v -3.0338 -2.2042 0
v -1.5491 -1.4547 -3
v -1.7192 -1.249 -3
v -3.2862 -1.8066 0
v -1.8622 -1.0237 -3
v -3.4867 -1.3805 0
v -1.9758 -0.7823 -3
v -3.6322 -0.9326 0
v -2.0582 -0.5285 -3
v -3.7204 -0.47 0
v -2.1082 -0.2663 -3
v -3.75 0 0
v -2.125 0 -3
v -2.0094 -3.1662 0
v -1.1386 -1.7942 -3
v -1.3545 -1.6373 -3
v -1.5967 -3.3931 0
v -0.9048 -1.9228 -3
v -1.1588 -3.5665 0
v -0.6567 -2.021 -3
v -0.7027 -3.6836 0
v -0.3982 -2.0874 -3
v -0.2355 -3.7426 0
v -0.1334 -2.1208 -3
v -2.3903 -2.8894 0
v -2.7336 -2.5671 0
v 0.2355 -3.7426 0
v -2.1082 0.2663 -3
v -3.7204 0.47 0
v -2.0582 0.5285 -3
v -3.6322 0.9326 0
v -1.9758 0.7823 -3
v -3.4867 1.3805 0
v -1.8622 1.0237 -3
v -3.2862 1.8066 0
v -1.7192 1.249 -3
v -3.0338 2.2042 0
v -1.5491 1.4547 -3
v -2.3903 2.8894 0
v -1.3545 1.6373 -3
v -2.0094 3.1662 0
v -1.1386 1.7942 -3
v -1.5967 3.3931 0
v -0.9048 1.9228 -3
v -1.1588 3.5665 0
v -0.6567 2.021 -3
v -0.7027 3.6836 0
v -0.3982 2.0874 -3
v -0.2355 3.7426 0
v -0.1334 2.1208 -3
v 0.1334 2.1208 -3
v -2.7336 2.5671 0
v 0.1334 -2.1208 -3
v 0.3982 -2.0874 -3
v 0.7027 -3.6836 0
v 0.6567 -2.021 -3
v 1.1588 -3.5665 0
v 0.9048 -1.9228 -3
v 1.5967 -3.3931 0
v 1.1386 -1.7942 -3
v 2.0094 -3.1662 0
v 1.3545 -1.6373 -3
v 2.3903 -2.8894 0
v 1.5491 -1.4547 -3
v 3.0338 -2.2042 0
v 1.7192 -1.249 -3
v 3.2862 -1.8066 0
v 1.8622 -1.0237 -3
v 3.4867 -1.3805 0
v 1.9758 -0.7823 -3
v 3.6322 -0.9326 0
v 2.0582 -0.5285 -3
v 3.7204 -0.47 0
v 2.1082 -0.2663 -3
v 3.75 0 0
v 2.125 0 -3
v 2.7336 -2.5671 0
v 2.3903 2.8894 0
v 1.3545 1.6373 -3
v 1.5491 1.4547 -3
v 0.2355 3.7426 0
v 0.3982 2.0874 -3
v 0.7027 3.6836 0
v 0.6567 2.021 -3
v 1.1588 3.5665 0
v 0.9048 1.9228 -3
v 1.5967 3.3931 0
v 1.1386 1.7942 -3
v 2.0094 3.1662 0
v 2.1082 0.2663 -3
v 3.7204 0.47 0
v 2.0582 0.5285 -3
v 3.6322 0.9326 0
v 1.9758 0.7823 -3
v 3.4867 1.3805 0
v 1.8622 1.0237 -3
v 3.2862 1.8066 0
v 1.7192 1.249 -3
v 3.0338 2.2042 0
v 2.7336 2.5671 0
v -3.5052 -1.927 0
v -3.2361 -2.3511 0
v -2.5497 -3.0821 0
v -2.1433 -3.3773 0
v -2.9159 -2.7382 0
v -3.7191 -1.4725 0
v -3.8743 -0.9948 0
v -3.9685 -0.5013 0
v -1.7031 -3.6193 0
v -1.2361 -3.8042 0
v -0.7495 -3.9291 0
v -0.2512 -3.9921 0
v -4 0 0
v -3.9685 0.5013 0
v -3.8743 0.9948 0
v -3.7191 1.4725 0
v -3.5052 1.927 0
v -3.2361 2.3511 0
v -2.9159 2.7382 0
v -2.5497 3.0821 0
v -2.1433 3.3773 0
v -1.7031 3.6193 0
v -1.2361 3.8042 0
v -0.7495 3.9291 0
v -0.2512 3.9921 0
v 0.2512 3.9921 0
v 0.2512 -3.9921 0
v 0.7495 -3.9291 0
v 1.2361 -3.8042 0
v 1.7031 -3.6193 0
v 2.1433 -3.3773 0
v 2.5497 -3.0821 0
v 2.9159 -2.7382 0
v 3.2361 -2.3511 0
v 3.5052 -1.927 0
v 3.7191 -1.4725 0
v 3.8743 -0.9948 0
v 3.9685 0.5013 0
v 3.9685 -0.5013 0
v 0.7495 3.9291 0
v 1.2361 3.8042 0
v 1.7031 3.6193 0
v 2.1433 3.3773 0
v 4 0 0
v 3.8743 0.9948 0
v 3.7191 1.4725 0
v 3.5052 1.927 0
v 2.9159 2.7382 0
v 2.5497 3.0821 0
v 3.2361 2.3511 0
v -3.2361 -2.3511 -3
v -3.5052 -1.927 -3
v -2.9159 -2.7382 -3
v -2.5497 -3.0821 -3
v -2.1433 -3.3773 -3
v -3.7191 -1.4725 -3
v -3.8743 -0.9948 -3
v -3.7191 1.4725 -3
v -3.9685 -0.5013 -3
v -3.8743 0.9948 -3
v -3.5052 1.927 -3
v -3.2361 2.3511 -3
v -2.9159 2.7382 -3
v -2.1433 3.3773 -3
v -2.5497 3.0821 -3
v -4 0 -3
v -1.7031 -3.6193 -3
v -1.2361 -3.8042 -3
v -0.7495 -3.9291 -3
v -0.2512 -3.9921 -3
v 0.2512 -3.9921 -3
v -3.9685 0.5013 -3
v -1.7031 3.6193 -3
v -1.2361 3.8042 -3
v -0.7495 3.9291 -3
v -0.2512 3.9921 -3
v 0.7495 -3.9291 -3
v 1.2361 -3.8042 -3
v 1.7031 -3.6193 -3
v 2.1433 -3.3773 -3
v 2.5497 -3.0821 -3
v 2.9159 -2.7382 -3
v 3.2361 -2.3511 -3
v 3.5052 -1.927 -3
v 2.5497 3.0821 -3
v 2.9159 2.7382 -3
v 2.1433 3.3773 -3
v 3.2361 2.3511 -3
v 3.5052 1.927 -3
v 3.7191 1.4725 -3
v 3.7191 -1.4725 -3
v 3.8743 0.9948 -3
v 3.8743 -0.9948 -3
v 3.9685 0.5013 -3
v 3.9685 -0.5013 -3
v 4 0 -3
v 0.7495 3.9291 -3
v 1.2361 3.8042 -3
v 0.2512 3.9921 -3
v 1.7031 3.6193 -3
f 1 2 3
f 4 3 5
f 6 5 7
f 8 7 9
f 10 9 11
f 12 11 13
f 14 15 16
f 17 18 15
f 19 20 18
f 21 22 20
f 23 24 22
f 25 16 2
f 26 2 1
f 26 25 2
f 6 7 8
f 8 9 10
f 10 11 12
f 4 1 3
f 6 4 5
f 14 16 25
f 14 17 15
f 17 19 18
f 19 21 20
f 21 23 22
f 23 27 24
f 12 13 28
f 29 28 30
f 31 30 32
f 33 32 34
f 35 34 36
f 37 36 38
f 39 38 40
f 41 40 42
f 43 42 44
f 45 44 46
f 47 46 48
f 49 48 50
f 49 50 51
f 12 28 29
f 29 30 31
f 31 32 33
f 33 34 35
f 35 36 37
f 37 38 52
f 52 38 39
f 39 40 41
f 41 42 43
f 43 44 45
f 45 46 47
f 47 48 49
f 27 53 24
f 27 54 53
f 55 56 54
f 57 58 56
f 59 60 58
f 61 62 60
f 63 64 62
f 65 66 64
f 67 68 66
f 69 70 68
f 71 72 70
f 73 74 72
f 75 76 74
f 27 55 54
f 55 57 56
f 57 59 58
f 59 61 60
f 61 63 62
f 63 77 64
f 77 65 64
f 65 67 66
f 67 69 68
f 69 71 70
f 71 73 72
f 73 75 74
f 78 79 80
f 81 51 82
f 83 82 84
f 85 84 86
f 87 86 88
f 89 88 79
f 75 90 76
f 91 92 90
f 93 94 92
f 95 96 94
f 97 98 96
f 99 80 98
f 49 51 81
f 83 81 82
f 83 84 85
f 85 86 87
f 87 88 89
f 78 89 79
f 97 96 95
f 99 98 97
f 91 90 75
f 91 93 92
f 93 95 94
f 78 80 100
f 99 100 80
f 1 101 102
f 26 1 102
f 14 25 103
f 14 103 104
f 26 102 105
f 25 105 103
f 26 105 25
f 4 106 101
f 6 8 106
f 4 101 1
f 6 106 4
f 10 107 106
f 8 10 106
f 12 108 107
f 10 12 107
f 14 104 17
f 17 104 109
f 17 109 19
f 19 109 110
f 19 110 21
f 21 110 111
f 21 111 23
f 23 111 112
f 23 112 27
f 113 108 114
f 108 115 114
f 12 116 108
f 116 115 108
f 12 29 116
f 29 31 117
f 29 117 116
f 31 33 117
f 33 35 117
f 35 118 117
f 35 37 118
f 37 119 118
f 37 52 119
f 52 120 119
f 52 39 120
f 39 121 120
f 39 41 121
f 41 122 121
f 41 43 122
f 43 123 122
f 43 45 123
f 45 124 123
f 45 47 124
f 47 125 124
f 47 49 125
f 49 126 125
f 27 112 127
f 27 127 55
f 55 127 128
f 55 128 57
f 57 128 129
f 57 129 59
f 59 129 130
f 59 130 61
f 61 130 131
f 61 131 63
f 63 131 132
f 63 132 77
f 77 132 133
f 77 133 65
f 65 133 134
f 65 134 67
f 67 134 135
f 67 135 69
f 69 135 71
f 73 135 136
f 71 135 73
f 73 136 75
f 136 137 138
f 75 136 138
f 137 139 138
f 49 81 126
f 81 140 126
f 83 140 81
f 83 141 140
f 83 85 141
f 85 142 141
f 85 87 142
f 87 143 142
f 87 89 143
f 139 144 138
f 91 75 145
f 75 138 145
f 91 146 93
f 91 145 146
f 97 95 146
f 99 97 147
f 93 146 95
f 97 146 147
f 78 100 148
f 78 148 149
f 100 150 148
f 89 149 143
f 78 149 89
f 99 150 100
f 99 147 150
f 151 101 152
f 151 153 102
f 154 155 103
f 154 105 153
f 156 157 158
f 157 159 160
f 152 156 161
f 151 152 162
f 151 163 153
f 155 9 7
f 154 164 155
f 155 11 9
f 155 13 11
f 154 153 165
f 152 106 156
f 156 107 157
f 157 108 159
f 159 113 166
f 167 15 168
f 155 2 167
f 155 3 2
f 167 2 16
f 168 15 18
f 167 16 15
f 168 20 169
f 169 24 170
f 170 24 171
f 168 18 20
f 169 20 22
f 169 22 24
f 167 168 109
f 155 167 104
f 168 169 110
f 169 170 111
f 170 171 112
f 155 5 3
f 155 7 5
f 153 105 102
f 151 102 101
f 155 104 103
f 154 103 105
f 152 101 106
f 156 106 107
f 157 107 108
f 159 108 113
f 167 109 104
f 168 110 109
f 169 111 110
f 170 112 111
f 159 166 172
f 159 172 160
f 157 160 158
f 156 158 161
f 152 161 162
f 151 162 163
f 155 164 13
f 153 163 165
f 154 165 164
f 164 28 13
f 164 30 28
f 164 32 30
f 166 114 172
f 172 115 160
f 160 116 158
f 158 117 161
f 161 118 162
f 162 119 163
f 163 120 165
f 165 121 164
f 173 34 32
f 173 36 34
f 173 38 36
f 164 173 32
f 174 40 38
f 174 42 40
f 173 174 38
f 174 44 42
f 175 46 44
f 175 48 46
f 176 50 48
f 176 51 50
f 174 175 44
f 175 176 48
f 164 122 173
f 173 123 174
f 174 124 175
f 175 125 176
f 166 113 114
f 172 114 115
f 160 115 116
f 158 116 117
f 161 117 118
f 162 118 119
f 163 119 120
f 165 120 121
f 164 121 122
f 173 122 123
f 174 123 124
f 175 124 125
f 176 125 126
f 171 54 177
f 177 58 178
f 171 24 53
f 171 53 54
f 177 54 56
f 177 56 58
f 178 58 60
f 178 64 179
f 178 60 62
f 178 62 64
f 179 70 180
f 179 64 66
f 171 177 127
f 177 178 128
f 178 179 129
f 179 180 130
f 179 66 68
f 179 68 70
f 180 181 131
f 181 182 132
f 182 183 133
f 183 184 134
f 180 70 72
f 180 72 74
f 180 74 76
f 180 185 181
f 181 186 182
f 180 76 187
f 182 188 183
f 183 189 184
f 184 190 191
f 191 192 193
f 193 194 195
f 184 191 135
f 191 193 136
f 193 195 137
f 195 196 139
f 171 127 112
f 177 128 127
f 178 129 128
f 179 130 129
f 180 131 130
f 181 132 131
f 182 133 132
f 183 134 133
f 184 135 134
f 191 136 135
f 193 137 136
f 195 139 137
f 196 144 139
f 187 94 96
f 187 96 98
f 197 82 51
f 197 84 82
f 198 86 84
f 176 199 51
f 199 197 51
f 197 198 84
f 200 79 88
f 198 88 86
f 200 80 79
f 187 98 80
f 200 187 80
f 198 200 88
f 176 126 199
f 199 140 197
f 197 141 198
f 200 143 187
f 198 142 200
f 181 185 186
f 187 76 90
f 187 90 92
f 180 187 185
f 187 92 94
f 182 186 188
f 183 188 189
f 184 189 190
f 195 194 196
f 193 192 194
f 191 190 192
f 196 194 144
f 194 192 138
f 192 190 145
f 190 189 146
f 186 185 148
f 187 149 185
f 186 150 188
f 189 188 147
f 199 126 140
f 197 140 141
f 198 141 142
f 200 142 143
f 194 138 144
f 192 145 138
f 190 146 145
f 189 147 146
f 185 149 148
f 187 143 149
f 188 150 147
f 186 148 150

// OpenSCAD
$fn = 50;

difference() {
	union() {
		translate(v = [0, 0, -3.0]) {
			cylinder(h = 6, r = 4.0);
		}
	}
	union() {
		translate(v = [0, 0, 0]) {
			rotate(a = [0, 0, 0]) {
				difference() {
					union() {
						translate(v = [0, 0, -6.0]) {
							cylinder(h = 6, r = 2.0);
						}
						translate(v = [0, 0, -3]) {
							cylinder(h = 3, r1 = 2.125, r2 = 3.75);
						}
						translate(v = [0, 0, -6.0]) {
							cylinder(h = 6, r = 2.125);
						}
						translate(v = [0, 0, -6.0]) {
							cylinder(h = 6, r = 2.0);
						}
					}
					union();
				}
			}
		}
		#cylinder(h = 3, r = 5.0);
	}
}
